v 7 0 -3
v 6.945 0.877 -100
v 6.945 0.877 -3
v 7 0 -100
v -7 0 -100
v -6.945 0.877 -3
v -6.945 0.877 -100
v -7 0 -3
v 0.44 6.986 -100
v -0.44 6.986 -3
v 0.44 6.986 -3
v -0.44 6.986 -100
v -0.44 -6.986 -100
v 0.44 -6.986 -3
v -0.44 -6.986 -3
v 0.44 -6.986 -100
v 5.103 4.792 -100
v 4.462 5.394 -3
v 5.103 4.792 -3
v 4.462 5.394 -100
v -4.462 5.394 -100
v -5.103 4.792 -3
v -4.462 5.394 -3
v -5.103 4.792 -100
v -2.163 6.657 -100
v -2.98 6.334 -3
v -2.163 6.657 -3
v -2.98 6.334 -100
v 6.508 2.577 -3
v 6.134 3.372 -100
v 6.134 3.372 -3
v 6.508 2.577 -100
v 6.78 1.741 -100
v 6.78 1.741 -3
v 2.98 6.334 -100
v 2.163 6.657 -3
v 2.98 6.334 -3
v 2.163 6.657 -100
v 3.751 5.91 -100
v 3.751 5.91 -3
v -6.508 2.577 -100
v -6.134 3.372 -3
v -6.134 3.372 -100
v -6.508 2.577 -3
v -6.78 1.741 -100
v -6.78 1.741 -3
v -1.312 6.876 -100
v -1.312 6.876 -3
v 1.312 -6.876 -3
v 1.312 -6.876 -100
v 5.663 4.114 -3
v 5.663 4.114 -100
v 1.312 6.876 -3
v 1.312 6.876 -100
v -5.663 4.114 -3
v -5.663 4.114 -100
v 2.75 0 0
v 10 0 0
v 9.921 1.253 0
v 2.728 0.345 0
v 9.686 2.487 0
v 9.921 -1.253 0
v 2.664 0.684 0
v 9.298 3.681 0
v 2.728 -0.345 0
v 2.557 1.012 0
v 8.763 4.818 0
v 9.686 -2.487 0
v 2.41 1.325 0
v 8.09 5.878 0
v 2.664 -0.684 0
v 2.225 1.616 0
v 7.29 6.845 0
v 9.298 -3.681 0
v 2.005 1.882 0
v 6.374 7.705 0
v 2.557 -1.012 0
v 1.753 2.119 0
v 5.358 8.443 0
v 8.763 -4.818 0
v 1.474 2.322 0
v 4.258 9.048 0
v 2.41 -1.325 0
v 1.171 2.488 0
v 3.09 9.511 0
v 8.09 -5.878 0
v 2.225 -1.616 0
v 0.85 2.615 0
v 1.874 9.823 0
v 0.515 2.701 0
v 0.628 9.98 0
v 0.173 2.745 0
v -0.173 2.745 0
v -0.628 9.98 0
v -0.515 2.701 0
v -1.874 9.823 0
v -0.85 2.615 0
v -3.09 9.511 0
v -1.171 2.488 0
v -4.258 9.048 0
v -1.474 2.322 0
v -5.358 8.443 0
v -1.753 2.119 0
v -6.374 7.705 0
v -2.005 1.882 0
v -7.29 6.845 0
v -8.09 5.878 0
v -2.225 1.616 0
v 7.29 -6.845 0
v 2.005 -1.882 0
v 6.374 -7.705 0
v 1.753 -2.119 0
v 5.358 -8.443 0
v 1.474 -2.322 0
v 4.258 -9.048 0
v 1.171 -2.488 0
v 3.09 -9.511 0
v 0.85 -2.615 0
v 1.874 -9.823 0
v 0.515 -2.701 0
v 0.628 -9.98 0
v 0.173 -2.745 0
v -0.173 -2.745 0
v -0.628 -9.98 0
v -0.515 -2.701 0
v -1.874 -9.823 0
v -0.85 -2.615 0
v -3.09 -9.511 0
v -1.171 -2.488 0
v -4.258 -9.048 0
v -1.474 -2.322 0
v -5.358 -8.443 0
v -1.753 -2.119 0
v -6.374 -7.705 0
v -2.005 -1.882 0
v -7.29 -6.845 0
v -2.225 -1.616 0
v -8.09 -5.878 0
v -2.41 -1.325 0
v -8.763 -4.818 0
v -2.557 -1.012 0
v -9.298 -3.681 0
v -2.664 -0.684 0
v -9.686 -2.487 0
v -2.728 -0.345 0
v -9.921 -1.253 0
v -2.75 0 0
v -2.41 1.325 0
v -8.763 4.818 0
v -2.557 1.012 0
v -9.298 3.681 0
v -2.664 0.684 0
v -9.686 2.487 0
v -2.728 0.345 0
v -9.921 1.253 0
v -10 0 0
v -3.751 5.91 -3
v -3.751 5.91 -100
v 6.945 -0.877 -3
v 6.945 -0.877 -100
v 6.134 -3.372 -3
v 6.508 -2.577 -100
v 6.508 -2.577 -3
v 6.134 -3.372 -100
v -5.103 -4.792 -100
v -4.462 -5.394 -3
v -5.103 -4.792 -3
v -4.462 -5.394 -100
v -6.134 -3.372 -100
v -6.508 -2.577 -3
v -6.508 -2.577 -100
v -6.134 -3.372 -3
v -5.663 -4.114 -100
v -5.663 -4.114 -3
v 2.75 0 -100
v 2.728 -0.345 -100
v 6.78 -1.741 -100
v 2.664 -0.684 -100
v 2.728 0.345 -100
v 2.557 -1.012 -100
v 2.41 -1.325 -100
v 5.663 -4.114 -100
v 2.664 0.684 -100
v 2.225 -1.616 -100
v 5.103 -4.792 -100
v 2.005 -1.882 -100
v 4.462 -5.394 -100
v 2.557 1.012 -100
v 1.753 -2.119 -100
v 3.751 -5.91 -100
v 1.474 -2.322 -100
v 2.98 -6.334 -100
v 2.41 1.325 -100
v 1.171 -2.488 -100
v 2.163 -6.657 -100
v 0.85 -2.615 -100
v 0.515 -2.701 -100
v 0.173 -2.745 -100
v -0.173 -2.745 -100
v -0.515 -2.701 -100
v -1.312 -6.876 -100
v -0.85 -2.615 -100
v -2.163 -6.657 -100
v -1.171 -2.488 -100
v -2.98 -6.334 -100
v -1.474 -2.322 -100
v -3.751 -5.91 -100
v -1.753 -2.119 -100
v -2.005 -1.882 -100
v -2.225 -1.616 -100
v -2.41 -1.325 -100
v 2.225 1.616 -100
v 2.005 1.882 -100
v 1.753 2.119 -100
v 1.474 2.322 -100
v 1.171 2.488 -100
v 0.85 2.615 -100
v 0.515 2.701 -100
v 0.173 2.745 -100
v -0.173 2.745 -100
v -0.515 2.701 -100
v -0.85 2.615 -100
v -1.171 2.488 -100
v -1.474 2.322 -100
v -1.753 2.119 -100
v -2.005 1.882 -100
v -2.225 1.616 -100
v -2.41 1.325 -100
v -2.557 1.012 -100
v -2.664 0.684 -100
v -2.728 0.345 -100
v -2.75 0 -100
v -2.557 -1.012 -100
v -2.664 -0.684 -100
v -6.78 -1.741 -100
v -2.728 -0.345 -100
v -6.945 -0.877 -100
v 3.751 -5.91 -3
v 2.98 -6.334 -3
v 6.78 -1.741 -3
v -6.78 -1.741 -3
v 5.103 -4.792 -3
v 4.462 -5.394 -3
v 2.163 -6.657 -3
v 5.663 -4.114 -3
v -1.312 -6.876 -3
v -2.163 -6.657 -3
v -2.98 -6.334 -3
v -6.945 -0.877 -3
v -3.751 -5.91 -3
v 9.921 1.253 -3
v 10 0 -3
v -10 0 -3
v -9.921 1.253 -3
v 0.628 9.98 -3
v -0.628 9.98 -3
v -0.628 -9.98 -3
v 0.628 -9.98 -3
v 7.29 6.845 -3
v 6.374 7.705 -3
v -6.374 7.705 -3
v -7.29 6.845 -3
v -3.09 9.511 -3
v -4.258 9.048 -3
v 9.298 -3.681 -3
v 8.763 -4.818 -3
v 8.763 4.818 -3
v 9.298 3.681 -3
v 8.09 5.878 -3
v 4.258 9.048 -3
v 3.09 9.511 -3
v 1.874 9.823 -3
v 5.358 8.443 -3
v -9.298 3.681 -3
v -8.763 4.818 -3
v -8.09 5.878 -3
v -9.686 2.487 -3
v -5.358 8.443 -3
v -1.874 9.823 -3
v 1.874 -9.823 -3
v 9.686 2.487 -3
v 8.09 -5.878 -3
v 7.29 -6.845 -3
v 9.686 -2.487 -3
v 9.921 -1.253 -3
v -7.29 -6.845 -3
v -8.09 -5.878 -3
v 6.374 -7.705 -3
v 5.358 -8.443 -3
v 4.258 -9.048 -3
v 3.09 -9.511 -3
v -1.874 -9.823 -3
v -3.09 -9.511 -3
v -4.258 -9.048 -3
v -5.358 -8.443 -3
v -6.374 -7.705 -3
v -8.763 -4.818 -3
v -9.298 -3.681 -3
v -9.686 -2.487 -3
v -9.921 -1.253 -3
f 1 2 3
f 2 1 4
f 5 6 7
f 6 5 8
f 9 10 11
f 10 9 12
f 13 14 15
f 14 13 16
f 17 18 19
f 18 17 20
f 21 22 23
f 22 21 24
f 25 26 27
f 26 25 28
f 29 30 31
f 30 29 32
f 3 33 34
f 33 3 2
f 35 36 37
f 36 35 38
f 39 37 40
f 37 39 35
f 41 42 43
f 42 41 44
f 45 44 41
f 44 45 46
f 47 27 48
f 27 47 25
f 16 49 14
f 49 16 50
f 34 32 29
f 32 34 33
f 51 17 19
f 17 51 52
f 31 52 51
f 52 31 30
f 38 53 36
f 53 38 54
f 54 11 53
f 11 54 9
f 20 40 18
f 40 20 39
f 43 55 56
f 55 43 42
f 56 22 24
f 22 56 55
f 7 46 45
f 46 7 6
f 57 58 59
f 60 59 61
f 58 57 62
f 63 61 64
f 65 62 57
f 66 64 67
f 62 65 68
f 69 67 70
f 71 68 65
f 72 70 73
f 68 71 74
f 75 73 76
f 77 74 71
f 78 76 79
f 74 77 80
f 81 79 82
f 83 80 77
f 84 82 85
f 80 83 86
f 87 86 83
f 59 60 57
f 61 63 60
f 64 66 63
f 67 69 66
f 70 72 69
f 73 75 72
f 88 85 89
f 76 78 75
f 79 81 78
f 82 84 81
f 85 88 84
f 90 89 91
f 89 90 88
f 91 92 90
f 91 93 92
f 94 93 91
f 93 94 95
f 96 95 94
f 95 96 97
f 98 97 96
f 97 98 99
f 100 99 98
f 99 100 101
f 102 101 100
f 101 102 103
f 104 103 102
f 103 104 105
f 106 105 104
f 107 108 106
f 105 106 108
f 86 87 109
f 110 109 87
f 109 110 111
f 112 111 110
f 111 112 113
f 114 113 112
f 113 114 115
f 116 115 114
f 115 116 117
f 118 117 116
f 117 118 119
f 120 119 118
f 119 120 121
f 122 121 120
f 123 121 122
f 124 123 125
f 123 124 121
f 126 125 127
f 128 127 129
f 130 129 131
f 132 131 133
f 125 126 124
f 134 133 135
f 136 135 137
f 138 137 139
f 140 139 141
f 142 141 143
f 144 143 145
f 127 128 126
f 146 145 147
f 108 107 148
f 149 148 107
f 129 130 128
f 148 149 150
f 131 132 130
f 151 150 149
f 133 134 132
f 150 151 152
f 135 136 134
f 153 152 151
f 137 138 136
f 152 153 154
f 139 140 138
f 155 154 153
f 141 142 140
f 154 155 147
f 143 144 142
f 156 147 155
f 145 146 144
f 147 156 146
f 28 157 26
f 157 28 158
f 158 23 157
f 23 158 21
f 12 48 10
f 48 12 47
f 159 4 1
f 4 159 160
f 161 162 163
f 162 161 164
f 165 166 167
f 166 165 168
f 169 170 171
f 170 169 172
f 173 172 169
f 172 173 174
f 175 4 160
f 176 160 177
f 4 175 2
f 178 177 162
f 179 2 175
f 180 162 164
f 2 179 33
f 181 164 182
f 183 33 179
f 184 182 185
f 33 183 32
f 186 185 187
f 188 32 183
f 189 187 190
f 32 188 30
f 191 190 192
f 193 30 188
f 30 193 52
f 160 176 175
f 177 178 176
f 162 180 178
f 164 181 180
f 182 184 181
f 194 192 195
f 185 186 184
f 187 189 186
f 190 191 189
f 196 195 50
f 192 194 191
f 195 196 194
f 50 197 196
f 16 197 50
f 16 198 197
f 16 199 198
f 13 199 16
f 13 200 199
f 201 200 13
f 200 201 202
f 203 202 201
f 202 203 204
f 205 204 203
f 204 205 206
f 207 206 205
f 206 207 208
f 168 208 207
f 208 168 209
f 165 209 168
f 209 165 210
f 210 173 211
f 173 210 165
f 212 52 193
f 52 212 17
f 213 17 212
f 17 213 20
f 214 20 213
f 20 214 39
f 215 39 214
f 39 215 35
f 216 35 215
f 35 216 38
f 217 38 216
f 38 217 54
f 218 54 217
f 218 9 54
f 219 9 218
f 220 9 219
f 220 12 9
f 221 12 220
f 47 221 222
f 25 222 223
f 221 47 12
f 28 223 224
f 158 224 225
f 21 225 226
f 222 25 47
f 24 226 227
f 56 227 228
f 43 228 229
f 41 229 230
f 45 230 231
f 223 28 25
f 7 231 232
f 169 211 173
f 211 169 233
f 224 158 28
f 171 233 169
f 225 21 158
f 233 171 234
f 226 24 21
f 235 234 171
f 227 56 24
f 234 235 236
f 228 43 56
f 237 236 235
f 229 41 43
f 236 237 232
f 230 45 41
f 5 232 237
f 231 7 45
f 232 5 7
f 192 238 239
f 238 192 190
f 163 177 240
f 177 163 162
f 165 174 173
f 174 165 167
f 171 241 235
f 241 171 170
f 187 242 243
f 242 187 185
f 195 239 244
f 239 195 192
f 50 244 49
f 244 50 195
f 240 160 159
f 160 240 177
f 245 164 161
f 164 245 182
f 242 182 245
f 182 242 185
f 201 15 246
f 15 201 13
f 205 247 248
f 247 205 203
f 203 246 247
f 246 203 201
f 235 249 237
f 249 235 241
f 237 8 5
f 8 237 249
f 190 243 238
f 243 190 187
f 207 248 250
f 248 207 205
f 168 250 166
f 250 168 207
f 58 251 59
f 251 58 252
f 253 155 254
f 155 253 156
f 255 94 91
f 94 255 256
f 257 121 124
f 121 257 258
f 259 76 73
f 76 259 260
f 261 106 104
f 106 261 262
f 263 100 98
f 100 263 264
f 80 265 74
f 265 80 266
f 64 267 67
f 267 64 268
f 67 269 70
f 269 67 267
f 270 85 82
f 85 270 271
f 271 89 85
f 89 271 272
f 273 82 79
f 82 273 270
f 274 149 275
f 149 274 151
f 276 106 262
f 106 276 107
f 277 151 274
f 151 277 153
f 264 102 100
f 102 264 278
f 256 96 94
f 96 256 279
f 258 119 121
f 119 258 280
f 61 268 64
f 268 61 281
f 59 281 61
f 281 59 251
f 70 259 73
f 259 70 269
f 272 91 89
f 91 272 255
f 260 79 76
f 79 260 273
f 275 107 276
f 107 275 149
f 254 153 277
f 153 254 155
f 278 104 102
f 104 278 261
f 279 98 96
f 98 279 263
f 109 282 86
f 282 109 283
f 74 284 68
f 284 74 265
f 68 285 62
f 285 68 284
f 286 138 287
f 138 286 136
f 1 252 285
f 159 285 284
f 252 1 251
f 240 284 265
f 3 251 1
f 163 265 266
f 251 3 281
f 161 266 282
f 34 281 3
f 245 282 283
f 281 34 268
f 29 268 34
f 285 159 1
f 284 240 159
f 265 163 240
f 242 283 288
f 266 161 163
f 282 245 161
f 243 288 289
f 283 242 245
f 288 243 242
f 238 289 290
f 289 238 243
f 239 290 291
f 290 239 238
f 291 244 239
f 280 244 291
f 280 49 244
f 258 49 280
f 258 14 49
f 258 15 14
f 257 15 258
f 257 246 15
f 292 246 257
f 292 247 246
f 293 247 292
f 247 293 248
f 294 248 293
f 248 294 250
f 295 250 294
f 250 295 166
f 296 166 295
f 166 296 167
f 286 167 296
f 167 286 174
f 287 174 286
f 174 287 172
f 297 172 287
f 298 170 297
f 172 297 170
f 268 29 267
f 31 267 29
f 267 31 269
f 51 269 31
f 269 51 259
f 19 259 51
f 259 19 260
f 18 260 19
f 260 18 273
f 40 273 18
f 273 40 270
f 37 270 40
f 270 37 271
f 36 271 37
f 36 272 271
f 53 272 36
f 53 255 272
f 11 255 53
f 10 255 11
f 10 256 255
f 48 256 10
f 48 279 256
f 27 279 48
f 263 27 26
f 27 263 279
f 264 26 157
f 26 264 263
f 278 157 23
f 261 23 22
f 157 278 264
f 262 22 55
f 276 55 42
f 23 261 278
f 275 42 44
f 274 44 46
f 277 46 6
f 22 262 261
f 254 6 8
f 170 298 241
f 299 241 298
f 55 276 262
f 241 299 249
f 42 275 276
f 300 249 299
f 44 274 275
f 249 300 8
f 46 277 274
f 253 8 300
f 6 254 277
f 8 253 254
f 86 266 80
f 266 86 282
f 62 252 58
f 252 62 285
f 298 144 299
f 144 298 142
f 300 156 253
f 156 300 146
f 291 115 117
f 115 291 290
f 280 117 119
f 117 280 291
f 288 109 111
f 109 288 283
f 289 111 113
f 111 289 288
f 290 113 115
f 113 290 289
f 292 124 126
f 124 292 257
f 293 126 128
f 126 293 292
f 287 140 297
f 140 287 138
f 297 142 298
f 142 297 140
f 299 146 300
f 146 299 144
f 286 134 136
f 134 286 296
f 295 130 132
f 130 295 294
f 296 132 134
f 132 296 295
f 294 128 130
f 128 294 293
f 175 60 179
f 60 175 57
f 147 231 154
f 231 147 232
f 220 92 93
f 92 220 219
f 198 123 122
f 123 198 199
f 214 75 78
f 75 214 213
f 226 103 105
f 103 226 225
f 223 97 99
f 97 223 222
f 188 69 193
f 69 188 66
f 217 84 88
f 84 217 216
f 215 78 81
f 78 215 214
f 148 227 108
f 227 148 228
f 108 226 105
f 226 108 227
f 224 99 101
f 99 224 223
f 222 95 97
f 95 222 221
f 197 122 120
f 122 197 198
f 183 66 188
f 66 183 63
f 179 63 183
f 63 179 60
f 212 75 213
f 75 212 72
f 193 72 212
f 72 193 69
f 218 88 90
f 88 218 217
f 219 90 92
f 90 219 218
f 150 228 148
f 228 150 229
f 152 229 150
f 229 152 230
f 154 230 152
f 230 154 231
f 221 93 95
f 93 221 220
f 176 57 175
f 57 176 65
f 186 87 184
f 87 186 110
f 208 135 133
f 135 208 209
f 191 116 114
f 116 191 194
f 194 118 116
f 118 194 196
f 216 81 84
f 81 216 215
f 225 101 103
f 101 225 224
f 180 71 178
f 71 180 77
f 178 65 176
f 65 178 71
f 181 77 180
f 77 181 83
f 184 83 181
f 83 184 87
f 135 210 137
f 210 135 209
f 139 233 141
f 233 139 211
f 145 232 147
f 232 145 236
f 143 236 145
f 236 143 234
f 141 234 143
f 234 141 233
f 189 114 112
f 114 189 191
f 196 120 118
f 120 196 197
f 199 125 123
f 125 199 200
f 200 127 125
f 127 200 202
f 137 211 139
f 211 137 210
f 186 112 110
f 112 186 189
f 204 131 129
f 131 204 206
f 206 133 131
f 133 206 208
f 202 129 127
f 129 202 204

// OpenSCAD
$fn = 50;


difference() {
	union() {
		translate(v = [0, 0, -100.0000000000]) {
			cylinder(h = 100, r = 7.0000000000);
		}
		translate(v = [0, 0, -3.0000000000]) {
			cylinder(h = 3, r = 10.0000000000);
		}
	}
	union() {
		#translate(v = [0, 0, -100]) {
			cylinder(h = 100, r = 2.7500000000);
		}
	}
}
